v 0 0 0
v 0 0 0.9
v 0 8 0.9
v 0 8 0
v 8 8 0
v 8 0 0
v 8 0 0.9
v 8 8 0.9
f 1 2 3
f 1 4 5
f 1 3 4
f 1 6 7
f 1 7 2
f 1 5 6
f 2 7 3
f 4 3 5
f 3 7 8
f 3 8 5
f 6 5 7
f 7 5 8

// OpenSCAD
/* Warning, this is a very basic generator with a lot of approximation 
input data : [VQFN, RTX, 8x8x0.9mm, 56, , D, C04-00374D]
generated by com.zoubworld.electronics.cad.model3d.Basic
Date : Sun Feb 15 10:50:48 CET 2026
*/

//body
color("black")
translate([0,0,0])
cube([8.0,8.0,0.9], center=false);
